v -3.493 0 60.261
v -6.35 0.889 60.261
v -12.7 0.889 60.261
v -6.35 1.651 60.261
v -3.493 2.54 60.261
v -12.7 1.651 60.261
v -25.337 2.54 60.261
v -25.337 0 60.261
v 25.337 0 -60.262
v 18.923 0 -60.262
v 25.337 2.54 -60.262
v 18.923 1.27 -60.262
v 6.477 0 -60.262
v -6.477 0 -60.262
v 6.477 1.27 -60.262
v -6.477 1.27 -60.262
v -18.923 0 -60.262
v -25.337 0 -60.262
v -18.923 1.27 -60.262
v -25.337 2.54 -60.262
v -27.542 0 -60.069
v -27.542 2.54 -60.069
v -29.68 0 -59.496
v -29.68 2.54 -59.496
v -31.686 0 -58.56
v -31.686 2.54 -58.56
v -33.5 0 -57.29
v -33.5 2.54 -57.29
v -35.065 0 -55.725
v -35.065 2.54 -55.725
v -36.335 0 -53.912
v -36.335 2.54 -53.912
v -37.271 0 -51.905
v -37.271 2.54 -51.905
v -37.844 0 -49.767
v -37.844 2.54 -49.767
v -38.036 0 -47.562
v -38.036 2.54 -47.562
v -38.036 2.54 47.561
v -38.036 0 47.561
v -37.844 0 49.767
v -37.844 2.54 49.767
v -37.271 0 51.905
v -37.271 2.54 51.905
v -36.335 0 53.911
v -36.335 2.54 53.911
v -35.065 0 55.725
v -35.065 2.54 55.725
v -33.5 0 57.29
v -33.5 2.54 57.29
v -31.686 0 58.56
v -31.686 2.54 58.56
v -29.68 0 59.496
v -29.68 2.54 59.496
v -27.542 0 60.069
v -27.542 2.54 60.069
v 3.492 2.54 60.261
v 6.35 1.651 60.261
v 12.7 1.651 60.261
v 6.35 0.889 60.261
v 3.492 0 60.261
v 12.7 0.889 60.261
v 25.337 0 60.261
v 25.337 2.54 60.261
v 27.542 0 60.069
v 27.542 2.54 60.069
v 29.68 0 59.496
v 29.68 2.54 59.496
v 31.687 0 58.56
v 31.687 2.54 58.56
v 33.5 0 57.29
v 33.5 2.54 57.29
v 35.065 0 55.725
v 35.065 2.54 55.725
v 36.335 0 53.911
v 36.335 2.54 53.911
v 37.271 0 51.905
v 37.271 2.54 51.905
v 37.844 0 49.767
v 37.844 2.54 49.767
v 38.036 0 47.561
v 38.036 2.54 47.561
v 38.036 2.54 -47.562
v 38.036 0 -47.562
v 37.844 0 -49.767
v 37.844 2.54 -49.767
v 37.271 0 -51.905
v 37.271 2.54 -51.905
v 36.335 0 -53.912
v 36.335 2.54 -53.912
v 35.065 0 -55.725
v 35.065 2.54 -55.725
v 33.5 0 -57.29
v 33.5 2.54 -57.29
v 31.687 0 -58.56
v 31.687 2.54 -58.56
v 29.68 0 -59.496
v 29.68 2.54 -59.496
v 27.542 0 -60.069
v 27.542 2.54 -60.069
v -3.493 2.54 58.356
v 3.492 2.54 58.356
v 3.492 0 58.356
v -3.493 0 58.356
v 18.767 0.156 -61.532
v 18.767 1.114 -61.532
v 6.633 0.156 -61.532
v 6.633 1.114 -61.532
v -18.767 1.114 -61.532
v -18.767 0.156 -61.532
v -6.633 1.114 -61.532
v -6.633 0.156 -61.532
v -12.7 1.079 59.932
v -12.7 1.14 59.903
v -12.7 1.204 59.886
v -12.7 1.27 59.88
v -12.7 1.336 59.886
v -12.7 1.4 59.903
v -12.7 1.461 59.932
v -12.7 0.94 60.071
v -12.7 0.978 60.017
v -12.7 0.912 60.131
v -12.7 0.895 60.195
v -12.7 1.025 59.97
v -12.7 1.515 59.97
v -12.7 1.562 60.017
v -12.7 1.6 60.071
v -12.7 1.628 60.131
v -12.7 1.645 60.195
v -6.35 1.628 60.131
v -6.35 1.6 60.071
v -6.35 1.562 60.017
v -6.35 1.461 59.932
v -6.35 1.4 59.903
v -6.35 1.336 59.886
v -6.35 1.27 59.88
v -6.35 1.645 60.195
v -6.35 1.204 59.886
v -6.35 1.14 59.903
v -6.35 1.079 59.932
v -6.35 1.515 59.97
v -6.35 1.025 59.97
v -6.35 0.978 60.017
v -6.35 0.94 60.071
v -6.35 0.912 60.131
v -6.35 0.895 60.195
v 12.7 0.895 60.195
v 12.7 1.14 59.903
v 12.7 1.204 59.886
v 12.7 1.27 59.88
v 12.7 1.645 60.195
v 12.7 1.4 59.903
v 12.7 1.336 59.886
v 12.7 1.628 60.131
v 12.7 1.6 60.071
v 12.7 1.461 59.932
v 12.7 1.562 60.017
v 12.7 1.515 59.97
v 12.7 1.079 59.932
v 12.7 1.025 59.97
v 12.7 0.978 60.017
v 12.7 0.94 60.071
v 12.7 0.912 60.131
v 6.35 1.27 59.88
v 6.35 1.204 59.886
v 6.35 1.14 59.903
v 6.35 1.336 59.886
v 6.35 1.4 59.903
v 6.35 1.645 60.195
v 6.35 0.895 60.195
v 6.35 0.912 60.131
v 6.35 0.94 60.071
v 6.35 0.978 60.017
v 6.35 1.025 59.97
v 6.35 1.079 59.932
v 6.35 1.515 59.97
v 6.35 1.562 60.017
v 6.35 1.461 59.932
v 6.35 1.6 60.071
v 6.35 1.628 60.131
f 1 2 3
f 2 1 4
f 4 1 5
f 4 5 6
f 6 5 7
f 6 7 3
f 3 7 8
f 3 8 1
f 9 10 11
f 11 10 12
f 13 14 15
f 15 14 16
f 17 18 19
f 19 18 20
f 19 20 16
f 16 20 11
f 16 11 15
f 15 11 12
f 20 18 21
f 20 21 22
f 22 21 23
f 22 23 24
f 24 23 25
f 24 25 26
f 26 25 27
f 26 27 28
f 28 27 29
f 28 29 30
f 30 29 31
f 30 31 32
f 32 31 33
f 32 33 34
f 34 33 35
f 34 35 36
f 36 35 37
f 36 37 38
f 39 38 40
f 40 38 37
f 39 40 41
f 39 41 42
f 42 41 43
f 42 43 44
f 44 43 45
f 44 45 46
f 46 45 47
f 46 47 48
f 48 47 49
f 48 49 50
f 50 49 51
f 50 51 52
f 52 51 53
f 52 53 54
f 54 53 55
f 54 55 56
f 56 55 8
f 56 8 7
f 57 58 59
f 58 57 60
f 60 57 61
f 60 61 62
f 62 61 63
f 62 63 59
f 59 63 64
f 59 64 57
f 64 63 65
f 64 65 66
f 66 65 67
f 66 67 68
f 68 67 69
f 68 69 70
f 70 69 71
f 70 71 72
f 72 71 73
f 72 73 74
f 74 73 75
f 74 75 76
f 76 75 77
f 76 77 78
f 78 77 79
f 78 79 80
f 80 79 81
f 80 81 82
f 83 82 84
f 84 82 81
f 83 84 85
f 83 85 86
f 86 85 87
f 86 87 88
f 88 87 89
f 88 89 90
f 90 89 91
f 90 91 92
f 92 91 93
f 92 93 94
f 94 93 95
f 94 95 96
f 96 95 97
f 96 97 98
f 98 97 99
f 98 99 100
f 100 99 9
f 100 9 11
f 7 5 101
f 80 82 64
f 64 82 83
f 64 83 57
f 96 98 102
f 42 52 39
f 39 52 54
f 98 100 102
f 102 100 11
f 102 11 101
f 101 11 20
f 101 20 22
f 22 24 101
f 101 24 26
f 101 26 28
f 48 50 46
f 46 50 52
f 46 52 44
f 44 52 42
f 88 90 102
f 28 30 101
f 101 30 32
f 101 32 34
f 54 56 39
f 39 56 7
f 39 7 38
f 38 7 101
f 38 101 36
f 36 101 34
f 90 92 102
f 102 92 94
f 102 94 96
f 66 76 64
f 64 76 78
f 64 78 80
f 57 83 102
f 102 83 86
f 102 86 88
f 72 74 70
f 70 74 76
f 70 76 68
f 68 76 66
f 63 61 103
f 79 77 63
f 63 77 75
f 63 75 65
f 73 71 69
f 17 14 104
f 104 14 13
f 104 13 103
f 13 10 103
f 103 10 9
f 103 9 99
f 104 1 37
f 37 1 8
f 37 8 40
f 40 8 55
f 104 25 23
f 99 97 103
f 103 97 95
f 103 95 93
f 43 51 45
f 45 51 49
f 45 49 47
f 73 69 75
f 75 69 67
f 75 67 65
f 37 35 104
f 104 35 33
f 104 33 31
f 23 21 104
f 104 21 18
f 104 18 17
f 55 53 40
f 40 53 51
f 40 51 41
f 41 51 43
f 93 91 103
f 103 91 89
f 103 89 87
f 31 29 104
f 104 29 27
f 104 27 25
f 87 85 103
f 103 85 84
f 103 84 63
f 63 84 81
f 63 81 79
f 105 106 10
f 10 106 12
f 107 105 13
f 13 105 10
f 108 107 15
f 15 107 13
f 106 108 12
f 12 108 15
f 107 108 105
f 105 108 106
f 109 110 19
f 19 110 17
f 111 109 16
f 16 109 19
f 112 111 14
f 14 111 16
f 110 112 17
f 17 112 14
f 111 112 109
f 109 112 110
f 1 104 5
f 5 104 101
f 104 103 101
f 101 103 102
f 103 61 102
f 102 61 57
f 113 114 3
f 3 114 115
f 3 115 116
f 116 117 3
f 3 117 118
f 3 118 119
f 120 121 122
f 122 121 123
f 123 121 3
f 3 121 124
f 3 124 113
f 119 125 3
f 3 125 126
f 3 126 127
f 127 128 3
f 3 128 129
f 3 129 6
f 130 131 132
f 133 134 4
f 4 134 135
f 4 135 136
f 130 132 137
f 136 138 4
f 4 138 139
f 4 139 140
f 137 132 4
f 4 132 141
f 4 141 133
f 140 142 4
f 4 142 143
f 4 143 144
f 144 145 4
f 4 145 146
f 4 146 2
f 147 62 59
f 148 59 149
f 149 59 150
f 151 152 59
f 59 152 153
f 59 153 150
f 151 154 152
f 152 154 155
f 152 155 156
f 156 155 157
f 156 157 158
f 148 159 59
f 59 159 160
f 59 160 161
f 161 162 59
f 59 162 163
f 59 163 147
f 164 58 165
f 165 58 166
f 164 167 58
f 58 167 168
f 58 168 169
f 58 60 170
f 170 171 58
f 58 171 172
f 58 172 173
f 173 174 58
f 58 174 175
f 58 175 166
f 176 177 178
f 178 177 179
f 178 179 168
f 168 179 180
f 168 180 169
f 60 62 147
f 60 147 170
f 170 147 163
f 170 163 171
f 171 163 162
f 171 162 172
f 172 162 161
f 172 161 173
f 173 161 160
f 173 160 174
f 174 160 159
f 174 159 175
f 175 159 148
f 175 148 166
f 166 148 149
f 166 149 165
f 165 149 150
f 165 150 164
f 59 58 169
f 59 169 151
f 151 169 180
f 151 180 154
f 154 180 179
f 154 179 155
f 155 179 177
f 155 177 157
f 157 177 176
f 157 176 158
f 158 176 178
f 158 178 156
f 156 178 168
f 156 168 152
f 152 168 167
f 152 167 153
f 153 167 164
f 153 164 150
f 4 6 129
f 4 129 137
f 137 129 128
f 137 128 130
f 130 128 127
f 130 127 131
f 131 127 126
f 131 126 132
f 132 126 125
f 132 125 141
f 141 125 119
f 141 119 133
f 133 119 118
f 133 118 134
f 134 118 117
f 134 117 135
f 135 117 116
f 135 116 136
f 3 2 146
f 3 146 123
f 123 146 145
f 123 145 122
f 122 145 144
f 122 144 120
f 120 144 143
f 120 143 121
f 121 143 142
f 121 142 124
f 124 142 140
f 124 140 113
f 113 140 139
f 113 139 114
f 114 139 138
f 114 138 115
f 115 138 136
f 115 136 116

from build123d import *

# Parameters (mm, degrees)
TOP_DEPTH                 = 2.54
SKETCH13_W                = 12.446
SKETCH13_H                = 1.27
BODY_TABS_DEPTH           = 1.27
BODY_TABS_DRAFT           = 7
BODY_TABS_PROFILE_2_DEPTH = 1.27
BODY_TABS_PROFILE_2_DRAFT = 7
SKETCH14_W                = 6.985
SKETCH14_H                = 1.905
FLAT_HEAD_HOLE_DEPTH      = 73.383371188
SKETCH15_W                = 6.35
SKETCH15_H                = 0.762
HOLD_GRPOVES_DEPTH        = 0.381
HOLD_FILLETS_R            = 0.381


with BuildPart() as part:
    # Sketch2 → top (new body)
    with BuildSketch(Plane(origin=(0, 0, 0), x_dir=(1, 0, 0), z_dir=(0, 1, 0))):
        with BuildLine():
            Line((-25.3365, -60.2615), (25.3365, -60.2615))
            ThreePointArc((25.3365, -60.2615), (34.316756121, -56.541756121), (38.0365, -47.5615))
            Line((38.0365, -47.5615), (38.0365, 47.5615))
            ThreePointArc((38.0365, 47.5615), (34.316756121, 56.541756121), (25.3365, 60.2615))
            Line((25.3365, 60.2615), (-25.3365, 60.2615))
            ThreePointArc((-25.3365, 60.2615), (-34.316756121, 56.541756121), (-38.0365, 47.5615))
            Line((-38.0365, 47.5615), (-38.0365, -47.5615))
            ThreePointArc((-38.0365, -47.5615), (-34.316756121, -56.541756121), (-25.3365, -60.2615))
        make_face()
    extrude(amount=TOP_DEPTH)


with BuildPart() as body_tabs_tool:
    # Sketch13 → Body Tabs (with draft: the straight prism first)
    with BuildSketch(Plane(origin=(0, 0, -60.2615), x_dir=(-1, 0, 0), z_dir=(0, 0, -1))):
        with Locations((-12.7, 0.635)):
            Rectangle(SKETCH13_W, SKETCH13_H)
    extrude(amount=BODY_TABS_DEPTH)
    # Body Tabs: the draft: its side faces are tilted about the plane it starts from
    body_tabs_sides = [body_tabs_tool.faces().sort_by_distance(p)[0] for p in [
        (12.7, 0, -60.8965),
        (6.477, 0.635, -60.8965),
        (12.7, 1.27, -60.8965),
        (18.923, 0.635, -60.8965),
    ]]
    draft(body_tabs_sides, Plane(origin=(0, 0, -60.2615), x_dir=(-1, 0, 0), z_dir=(0, 0, -1)), BODY_TABS_DRAFT)


with BuildPart() as part_1:
    add(part.part)

    # Body Tabs: add body_tabs_tool
    add(body_tabs_tool.part)


with BuildPart() as body_tabs_profile_2_tool:
    # Sketch13 → Body Tabs profile 2 (with draft: the straight prism first)
    with BuildSketch(Plane(origin=(0, 0, -60.2615), x_dir=(-1, 0, 0), z_dir=(0, 0, -1))):
        with Locations((12.7, 0.635)):
            Rectangle(SKETCH13_W, SKETCH13_H)
    extrude(amount=BODY_TABS_PROFILE_2_DEPTH)
    # Body Tabs profile 2: the draft: its side faces are tilted about the plane it starts from
    body_tabs_profile_2_sides = [body_tabs_profile_2_tool.faces().sort_by_distance(p)[0] for p in [
        (-18.923, 0.635, -60.8965),
        (-12.7, 1.27, -60.8965),
        (-6.477, 0.635, -60.8965),
        (-12.7, 0, -60.8965),
    ]]
    draft(body_tabs_profile_2_sides, Plane(origin=(0, 0, -60.2615), x_dir=(-1, 0, 0), z_dir=(0, 0, -1)), BODY_TABS_PROFILE_2_DRAFT)


with BuildPart() as part_2:
    add(part_1.part)

    # Body Tabs profile 2: add body_tabs_profile_2_tool
    add(body_tabs_profile_2_tool.part)

    # Sketch14 → Flat Head Hole (cut, through all)
    with BuildSketch(Plane(origin=(0, 2.54, 0), x_dir=(1, 0, 0), z_dir=(0, 1, 0))):
        with Locations((0, -59.309)):
            Rectangle(SKETCH14_W, SKETCH14_H)
    extrude(amount=-FLAT_HEAD_HOLE_DEPTH, mode=Mode.SUBTRACT)

    # Sketch15 → Hold Grpoves (cut)
    with BuildSketch(Plane.XY.offset(60.2615)):
        with Locations((-9.525, 1.27)):
            Rectangle(SKETCH15_W, SKETCH15_H)
        with Locations((9.525, 1.27)):
            Rectangle(SKETCH15_W, SKETCH15_H)
    extrude(amount=-HOLD_GRPOVES_DEPTH, mode=Mode.SUBTRACT)

    # Hold Fillets
    hold_fillets_edges = [part_2.edges().sort_by_distance(p)[0] for p in [
        (9.525, 1.651, 59.8805),
        (9.525, 0.889, 59.8805),
        (-9.525, 0.889, 59.8805),
        (-9.525, 1.651, 59.8805),
    ]]
    fillet(hold_fillets_edges, radius=HOLD_FILLETS_R - 0.0001)  # a hair under: the kernel refuses the full size


solid = part_2.part
